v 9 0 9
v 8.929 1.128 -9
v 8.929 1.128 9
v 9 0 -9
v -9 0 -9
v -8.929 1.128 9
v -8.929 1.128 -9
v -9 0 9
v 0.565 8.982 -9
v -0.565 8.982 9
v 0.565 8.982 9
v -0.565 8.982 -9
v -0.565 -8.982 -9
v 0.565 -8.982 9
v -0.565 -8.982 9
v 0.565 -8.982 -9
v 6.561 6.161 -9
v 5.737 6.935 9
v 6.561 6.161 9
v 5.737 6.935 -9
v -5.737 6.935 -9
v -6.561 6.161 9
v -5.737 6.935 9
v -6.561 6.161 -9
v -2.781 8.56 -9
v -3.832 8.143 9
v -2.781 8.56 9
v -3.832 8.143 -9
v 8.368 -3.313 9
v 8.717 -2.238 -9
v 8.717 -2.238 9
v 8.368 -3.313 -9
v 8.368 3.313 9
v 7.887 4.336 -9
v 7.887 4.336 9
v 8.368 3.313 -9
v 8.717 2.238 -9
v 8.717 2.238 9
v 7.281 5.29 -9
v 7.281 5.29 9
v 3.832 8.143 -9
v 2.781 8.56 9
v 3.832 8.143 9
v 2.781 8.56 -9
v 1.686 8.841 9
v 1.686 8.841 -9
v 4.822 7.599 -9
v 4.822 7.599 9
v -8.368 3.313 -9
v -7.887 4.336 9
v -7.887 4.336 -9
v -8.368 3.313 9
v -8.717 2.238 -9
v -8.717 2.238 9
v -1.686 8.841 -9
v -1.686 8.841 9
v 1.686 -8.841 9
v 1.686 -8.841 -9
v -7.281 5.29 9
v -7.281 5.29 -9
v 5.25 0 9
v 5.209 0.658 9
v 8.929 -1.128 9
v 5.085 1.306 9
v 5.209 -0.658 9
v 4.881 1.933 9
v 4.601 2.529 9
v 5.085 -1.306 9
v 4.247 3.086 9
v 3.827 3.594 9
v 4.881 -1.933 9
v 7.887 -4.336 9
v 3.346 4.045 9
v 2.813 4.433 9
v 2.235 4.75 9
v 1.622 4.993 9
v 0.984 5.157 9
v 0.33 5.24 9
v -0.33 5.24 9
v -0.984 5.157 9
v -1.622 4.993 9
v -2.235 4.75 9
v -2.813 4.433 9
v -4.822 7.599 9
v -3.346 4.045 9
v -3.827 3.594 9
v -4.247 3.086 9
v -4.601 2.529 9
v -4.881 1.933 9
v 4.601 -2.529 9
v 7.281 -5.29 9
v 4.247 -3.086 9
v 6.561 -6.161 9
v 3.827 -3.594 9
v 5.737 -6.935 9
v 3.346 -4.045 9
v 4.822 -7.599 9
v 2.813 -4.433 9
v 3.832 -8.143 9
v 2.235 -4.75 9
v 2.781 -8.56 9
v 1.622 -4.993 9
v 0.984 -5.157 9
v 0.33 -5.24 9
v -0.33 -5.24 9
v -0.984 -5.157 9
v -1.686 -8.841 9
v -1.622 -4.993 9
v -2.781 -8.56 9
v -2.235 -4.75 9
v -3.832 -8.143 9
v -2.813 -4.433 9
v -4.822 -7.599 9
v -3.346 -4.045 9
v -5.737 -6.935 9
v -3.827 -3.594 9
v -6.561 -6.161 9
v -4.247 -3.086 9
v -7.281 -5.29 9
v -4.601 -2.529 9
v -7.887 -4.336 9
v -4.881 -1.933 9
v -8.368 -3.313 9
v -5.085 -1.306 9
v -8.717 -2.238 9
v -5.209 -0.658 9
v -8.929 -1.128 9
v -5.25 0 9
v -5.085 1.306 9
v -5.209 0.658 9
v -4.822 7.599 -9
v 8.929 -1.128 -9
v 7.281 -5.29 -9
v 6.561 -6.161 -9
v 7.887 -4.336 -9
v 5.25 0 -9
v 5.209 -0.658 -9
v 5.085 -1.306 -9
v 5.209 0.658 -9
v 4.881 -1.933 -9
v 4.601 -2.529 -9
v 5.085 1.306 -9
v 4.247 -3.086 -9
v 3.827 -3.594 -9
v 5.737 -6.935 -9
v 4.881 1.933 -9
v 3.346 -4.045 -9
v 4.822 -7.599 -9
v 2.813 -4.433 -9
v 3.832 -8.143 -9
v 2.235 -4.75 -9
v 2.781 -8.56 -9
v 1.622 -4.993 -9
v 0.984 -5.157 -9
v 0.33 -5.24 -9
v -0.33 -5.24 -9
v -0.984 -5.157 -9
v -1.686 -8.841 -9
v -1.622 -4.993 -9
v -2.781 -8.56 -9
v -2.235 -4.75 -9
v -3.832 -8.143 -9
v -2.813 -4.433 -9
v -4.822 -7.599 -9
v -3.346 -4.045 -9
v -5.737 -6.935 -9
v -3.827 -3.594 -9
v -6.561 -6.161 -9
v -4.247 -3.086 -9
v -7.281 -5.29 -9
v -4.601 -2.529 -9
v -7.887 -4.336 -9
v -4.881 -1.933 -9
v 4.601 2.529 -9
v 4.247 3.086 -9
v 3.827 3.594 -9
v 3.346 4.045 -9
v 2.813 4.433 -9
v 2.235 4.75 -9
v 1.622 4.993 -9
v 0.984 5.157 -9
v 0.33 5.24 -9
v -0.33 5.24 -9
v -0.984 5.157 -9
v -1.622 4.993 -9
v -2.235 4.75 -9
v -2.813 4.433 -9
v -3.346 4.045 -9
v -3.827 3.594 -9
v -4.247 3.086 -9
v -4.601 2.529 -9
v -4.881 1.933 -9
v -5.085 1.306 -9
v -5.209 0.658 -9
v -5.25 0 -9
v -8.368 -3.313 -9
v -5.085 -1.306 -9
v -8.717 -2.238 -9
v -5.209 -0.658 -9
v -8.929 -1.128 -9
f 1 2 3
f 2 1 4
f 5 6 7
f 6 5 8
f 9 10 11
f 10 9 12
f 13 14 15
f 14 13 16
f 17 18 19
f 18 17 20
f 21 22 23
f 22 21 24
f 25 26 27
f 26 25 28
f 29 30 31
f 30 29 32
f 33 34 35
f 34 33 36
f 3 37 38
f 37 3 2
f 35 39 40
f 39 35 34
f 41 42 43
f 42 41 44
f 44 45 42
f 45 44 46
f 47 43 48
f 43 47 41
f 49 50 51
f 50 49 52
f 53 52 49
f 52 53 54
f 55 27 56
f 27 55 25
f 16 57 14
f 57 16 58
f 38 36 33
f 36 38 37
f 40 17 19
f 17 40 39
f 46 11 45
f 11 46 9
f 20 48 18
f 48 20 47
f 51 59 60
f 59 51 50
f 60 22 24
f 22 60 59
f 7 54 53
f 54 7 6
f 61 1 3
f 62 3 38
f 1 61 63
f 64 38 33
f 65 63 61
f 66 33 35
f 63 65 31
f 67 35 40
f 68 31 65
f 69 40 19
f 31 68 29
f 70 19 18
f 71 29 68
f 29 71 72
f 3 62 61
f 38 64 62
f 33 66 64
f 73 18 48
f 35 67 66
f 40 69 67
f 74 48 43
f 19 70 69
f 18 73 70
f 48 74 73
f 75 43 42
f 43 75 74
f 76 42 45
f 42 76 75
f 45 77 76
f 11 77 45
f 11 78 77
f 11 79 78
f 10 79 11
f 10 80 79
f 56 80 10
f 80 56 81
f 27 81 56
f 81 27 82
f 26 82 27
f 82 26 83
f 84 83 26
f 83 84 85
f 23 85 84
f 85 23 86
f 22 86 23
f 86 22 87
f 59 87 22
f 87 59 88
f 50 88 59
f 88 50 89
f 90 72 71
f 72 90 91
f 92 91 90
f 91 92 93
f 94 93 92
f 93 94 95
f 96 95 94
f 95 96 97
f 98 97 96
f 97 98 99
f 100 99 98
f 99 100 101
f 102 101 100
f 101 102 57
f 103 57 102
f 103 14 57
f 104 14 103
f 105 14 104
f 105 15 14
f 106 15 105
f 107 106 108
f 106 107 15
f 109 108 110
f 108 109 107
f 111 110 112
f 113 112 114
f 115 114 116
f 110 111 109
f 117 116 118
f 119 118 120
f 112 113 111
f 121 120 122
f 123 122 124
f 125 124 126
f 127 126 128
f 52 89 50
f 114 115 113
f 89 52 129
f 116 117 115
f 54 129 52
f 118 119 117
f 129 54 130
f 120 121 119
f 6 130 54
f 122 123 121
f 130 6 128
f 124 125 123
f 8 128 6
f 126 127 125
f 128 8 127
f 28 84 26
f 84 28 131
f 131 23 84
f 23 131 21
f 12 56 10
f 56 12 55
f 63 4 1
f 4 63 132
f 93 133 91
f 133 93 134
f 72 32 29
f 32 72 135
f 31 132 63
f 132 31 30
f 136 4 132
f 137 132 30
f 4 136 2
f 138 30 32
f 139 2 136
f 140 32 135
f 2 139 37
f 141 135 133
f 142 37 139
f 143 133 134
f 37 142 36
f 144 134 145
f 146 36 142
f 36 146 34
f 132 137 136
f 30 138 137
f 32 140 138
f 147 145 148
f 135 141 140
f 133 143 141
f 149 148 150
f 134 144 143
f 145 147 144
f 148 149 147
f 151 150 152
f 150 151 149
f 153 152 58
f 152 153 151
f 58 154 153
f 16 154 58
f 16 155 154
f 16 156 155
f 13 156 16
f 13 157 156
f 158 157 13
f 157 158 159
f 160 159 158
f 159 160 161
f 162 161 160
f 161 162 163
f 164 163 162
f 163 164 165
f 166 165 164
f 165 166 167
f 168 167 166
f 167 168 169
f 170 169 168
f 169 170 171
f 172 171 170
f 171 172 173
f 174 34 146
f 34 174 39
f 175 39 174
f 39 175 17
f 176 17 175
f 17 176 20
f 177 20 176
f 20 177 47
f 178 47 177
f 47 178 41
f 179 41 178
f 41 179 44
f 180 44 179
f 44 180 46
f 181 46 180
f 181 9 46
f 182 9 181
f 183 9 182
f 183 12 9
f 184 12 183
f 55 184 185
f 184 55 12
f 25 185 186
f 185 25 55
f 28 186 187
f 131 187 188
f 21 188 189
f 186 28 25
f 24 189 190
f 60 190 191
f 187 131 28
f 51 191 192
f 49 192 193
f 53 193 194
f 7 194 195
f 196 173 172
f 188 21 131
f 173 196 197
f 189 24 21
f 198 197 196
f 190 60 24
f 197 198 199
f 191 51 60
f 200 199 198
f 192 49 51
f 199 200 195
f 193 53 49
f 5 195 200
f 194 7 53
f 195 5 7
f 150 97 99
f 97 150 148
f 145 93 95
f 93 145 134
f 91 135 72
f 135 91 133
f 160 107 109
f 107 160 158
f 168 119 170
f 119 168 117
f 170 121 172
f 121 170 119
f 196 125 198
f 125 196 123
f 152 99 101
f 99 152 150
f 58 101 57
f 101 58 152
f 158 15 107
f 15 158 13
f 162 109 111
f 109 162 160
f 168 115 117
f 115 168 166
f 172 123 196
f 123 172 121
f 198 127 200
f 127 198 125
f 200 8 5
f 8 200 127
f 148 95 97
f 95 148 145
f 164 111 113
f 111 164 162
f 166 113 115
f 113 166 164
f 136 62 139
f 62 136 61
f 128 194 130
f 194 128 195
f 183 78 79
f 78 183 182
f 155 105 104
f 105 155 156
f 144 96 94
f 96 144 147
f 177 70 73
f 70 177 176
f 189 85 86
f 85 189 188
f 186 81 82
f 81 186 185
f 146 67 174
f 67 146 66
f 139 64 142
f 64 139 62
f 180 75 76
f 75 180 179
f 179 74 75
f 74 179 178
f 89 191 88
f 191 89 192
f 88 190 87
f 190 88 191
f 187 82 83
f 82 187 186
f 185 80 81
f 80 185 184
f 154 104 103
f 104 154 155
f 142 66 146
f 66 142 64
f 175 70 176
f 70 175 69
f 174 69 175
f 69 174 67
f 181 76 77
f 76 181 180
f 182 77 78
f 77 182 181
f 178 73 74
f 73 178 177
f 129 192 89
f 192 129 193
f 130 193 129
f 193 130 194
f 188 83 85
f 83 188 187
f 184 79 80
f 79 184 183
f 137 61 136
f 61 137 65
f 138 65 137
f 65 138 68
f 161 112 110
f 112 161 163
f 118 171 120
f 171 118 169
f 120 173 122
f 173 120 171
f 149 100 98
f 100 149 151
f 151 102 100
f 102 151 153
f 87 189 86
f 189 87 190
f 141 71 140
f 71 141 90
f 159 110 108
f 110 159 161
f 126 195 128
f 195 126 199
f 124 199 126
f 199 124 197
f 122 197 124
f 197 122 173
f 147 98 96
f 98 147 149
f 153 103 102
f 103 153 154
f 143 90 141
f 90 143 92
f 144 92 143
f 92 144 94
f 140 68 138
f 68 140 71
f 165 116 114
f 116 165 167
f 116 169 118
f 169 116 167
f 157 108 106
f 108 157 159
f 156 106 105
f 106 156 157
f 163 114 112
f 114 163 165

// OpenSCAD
$fn = 50;


difference() {
	union() {
		translate(v = [0, 0, -9.0000000000]) {
			cylinder(h = 18, r = 9.0000000000);
		}
	}
	union() {
		translate(v = [0, 0, -100.0000000000]) {
			cylinder(h = 200, r = 5.2500000000);
		}
	}
}
